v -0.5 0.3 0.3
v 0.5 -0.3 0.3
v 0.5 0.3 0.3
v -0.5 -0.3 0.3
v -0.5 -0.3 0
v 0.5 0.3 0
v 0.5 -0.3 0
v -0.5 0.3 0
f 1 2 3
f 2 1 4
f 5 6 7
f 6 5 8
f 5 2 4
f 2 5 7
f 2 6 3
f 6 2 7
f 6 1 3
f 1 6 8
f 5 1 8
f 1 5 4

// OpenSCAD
// Rectangular Prism for Basic Shapes
// by Slashee the Cow
// and yes I know it's just a cube scaled unequally

translate([-0.5, -0.3, 0])
cube([1,0.6,0.3]);
